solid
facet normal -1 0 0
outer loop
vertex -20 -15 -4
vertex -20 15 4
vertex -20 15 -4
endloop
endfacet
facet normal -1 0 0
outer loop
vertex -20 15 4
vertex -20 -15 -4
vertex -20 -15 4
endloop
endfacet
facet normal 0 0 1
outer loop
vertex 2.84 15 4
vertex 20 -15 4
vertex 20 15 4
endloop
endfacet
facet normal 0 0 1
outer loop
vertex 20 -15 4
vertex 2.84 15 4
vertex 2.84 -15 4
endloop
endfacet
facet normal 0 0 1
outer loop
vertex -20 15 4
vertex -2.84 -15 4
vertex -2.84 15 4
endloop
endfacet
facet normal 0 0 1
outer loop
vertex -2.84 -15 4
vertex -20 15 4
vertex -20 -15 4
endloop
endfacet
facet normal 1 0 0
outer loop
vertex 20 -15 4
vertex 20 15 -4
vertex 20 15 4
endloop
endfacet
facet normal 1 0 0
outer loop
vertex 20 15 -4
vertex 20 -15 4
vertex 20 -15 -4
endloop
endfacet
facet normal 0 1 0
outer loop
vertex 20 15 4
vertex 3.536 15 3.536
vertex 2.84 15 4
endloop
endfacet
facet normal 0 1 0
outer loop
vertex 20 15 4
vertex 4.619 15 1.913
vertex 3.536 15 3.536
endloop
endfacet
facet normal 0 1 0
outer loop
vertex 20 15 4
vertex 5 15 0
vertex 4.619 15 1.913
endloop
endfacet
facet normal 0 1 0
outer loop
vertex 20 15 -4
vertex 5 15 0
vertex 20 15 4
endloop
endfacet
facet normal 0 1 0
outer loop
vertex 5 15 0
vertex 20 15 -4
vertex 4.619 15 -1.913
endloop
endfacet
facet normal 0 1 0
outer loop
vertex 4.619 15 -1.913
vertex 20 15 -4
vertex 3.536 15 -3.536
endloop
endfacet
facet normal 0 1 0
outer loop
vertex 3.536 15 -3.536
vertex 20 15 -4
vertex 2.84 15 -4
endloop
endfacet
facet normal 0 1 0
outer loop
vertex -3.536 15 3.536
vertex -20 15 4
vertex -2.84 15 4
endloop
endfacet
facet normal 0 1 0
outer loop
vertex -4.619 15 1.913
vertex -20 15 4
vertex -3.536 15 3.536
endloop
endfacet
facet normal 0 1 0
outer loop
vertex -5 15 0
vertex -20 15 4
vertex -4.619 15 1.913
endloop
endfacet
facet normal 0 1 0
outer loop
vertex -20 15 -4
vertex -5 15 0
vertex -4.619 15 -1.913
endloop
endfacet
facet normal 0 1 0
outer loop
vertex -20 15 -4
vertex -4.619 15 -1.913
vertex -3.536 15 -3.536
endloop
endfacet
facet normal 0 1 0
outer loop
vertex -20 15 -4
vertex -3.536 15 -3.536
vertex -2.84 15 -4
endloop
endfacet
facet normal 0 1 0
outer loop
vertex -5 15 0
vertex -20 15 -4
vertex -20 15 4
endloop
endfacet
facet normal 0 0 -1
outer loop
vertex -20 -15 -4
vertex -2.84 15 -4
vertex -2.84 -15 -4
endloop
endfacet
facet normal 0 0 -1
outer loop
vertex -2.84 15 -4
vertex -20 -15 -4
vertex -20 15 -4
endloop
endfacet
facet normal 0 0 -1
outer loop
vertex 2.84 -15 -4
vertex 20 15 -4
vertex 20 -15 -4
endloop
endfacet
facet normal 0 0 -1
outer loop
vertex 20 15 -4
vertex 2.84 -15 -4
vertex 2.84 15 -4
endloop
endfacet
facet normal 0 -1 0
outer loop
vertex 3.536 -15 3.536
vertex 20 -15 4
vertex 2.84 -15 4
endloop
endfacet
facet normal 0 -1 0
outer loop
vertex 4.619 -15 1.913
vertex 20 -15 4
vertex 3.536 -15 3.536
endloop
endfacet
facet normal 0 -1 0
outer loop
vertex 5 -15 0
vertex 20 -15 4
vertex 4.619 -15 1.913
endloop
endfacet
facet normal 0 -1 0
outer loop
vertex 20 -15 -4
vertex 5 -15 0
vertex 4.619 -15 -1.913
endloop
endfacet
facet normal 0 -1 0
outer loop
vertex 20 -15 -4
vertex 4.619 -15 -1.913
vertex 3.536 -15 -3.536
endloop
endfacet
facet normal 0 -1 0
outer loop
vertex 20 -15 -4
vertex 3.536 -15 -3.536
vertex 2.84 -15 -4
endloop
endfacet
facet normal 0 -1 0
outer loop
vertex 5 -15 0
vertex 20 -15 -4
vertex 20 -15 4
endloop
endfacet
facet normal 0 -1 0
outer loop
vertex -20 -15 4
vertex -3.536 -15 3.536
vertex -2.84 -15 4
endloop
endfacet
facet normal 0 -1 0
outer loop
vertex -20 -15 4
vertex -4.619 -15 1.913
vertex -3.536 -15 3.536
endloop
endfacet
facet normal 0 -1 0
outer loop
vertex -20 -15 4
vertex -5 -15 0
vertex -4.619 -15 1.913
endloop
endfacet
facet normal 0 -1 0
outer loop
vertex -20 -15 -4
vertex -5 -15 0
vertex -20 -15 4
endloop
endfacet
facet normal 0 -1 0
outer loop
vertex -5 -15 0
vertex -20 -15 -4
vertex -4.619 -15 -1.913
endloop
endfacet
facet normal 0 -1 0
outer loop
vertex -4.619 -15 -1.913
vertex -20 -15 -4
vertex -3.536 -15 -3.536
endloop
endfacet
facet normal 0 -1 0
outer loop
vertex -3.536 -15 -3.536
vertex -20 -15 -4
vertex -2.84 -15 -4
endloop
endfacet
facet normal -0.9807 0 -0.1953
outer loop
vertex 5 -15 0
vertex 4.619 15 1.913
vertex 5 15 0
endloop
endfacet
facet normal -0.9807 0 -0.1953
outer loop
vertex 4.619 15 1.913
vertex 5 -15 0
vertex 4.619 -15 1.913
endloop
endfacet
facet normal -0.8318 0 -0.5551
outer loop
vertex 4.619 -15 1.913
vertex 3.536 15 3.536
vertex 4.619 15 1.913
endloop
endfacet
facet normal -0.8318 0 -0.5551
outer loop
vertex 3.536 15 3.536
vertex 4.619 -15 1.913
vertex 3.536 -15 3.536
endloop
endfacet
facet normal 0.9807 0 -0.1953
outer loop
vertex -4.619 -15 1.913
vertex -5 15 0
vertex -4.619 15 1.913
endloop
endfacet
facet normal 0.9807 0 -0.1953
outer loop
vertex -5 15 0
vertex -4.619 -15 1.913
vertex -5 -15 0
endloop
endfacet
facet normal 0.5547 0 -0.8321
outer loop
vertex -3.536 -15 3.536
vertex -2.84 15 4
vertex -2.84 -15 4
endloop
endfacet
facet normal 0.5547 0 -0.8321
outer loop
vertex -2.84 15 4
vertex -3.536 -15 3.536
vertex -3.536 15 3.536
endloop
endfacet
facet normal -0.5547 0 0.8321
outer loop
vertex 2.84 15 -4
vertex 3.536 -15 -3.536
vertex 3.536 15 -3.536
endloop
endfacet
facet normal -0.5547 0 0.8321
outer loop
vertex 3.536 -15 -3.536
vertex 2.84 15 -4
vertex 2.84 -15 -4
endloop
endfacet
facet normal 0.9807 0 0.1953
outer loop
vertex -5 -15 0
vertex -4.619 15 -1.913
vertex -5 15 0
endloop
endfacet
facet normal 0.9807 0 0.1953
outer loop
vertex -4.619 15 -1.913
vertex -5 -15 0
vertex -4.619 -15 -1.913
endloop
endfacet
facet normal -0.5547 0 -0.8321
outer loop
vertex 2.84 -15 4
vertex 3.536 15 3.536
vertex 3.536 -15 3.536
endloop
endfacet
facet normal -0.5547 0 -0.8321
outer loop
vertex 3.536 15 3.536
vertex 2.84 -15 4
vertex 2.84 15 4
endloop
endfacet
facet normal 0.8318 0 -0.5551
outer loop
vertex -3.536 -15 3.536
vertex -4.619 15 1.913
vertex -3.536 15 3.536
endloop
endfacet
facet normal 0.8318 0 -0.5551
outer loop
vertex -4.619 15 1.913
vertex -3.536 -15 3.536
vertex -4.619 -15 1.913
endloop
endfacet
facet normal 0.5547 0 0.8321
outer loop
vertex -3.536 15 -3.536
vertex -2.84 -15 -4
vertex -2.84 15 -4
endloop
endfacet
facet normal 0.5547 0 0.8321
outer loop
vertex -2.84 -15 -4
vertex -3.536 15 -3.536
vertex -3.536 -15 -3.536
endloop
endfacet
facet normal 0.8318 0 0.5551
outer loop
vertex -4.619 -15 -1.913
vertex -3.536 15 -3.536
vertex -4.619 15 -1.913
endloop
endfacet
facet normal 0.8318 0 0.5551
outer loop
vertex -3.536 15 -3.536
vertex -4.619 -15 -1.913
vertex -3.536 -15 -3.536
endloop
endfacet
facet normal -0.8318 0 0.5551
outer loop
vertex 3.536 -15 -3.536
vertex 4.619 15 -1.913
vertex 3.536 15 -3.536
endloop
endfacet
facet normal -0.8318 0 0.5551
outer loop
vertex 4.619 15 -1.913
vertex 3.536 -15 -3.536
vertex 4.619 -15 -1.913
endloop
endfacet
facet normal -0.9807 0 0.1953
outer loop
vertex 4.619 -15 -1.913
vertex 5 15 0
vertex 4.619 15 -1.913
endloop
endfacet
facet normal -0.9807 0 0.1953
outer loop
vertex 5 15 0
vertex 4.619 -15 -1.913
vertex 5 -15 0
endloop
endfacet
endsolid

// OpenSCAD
// Rectangular plate with centered hole
difference() {
    cube([40, 30, 8], center = true);  // Main rectangular plate
    rotate([90, 0, 0])                    // Rotate cylinder to align along Z axis
        cylinder(h = 32, d = 10, center = true); // Cylinder hole aligned with plate thickness (full height)
}
